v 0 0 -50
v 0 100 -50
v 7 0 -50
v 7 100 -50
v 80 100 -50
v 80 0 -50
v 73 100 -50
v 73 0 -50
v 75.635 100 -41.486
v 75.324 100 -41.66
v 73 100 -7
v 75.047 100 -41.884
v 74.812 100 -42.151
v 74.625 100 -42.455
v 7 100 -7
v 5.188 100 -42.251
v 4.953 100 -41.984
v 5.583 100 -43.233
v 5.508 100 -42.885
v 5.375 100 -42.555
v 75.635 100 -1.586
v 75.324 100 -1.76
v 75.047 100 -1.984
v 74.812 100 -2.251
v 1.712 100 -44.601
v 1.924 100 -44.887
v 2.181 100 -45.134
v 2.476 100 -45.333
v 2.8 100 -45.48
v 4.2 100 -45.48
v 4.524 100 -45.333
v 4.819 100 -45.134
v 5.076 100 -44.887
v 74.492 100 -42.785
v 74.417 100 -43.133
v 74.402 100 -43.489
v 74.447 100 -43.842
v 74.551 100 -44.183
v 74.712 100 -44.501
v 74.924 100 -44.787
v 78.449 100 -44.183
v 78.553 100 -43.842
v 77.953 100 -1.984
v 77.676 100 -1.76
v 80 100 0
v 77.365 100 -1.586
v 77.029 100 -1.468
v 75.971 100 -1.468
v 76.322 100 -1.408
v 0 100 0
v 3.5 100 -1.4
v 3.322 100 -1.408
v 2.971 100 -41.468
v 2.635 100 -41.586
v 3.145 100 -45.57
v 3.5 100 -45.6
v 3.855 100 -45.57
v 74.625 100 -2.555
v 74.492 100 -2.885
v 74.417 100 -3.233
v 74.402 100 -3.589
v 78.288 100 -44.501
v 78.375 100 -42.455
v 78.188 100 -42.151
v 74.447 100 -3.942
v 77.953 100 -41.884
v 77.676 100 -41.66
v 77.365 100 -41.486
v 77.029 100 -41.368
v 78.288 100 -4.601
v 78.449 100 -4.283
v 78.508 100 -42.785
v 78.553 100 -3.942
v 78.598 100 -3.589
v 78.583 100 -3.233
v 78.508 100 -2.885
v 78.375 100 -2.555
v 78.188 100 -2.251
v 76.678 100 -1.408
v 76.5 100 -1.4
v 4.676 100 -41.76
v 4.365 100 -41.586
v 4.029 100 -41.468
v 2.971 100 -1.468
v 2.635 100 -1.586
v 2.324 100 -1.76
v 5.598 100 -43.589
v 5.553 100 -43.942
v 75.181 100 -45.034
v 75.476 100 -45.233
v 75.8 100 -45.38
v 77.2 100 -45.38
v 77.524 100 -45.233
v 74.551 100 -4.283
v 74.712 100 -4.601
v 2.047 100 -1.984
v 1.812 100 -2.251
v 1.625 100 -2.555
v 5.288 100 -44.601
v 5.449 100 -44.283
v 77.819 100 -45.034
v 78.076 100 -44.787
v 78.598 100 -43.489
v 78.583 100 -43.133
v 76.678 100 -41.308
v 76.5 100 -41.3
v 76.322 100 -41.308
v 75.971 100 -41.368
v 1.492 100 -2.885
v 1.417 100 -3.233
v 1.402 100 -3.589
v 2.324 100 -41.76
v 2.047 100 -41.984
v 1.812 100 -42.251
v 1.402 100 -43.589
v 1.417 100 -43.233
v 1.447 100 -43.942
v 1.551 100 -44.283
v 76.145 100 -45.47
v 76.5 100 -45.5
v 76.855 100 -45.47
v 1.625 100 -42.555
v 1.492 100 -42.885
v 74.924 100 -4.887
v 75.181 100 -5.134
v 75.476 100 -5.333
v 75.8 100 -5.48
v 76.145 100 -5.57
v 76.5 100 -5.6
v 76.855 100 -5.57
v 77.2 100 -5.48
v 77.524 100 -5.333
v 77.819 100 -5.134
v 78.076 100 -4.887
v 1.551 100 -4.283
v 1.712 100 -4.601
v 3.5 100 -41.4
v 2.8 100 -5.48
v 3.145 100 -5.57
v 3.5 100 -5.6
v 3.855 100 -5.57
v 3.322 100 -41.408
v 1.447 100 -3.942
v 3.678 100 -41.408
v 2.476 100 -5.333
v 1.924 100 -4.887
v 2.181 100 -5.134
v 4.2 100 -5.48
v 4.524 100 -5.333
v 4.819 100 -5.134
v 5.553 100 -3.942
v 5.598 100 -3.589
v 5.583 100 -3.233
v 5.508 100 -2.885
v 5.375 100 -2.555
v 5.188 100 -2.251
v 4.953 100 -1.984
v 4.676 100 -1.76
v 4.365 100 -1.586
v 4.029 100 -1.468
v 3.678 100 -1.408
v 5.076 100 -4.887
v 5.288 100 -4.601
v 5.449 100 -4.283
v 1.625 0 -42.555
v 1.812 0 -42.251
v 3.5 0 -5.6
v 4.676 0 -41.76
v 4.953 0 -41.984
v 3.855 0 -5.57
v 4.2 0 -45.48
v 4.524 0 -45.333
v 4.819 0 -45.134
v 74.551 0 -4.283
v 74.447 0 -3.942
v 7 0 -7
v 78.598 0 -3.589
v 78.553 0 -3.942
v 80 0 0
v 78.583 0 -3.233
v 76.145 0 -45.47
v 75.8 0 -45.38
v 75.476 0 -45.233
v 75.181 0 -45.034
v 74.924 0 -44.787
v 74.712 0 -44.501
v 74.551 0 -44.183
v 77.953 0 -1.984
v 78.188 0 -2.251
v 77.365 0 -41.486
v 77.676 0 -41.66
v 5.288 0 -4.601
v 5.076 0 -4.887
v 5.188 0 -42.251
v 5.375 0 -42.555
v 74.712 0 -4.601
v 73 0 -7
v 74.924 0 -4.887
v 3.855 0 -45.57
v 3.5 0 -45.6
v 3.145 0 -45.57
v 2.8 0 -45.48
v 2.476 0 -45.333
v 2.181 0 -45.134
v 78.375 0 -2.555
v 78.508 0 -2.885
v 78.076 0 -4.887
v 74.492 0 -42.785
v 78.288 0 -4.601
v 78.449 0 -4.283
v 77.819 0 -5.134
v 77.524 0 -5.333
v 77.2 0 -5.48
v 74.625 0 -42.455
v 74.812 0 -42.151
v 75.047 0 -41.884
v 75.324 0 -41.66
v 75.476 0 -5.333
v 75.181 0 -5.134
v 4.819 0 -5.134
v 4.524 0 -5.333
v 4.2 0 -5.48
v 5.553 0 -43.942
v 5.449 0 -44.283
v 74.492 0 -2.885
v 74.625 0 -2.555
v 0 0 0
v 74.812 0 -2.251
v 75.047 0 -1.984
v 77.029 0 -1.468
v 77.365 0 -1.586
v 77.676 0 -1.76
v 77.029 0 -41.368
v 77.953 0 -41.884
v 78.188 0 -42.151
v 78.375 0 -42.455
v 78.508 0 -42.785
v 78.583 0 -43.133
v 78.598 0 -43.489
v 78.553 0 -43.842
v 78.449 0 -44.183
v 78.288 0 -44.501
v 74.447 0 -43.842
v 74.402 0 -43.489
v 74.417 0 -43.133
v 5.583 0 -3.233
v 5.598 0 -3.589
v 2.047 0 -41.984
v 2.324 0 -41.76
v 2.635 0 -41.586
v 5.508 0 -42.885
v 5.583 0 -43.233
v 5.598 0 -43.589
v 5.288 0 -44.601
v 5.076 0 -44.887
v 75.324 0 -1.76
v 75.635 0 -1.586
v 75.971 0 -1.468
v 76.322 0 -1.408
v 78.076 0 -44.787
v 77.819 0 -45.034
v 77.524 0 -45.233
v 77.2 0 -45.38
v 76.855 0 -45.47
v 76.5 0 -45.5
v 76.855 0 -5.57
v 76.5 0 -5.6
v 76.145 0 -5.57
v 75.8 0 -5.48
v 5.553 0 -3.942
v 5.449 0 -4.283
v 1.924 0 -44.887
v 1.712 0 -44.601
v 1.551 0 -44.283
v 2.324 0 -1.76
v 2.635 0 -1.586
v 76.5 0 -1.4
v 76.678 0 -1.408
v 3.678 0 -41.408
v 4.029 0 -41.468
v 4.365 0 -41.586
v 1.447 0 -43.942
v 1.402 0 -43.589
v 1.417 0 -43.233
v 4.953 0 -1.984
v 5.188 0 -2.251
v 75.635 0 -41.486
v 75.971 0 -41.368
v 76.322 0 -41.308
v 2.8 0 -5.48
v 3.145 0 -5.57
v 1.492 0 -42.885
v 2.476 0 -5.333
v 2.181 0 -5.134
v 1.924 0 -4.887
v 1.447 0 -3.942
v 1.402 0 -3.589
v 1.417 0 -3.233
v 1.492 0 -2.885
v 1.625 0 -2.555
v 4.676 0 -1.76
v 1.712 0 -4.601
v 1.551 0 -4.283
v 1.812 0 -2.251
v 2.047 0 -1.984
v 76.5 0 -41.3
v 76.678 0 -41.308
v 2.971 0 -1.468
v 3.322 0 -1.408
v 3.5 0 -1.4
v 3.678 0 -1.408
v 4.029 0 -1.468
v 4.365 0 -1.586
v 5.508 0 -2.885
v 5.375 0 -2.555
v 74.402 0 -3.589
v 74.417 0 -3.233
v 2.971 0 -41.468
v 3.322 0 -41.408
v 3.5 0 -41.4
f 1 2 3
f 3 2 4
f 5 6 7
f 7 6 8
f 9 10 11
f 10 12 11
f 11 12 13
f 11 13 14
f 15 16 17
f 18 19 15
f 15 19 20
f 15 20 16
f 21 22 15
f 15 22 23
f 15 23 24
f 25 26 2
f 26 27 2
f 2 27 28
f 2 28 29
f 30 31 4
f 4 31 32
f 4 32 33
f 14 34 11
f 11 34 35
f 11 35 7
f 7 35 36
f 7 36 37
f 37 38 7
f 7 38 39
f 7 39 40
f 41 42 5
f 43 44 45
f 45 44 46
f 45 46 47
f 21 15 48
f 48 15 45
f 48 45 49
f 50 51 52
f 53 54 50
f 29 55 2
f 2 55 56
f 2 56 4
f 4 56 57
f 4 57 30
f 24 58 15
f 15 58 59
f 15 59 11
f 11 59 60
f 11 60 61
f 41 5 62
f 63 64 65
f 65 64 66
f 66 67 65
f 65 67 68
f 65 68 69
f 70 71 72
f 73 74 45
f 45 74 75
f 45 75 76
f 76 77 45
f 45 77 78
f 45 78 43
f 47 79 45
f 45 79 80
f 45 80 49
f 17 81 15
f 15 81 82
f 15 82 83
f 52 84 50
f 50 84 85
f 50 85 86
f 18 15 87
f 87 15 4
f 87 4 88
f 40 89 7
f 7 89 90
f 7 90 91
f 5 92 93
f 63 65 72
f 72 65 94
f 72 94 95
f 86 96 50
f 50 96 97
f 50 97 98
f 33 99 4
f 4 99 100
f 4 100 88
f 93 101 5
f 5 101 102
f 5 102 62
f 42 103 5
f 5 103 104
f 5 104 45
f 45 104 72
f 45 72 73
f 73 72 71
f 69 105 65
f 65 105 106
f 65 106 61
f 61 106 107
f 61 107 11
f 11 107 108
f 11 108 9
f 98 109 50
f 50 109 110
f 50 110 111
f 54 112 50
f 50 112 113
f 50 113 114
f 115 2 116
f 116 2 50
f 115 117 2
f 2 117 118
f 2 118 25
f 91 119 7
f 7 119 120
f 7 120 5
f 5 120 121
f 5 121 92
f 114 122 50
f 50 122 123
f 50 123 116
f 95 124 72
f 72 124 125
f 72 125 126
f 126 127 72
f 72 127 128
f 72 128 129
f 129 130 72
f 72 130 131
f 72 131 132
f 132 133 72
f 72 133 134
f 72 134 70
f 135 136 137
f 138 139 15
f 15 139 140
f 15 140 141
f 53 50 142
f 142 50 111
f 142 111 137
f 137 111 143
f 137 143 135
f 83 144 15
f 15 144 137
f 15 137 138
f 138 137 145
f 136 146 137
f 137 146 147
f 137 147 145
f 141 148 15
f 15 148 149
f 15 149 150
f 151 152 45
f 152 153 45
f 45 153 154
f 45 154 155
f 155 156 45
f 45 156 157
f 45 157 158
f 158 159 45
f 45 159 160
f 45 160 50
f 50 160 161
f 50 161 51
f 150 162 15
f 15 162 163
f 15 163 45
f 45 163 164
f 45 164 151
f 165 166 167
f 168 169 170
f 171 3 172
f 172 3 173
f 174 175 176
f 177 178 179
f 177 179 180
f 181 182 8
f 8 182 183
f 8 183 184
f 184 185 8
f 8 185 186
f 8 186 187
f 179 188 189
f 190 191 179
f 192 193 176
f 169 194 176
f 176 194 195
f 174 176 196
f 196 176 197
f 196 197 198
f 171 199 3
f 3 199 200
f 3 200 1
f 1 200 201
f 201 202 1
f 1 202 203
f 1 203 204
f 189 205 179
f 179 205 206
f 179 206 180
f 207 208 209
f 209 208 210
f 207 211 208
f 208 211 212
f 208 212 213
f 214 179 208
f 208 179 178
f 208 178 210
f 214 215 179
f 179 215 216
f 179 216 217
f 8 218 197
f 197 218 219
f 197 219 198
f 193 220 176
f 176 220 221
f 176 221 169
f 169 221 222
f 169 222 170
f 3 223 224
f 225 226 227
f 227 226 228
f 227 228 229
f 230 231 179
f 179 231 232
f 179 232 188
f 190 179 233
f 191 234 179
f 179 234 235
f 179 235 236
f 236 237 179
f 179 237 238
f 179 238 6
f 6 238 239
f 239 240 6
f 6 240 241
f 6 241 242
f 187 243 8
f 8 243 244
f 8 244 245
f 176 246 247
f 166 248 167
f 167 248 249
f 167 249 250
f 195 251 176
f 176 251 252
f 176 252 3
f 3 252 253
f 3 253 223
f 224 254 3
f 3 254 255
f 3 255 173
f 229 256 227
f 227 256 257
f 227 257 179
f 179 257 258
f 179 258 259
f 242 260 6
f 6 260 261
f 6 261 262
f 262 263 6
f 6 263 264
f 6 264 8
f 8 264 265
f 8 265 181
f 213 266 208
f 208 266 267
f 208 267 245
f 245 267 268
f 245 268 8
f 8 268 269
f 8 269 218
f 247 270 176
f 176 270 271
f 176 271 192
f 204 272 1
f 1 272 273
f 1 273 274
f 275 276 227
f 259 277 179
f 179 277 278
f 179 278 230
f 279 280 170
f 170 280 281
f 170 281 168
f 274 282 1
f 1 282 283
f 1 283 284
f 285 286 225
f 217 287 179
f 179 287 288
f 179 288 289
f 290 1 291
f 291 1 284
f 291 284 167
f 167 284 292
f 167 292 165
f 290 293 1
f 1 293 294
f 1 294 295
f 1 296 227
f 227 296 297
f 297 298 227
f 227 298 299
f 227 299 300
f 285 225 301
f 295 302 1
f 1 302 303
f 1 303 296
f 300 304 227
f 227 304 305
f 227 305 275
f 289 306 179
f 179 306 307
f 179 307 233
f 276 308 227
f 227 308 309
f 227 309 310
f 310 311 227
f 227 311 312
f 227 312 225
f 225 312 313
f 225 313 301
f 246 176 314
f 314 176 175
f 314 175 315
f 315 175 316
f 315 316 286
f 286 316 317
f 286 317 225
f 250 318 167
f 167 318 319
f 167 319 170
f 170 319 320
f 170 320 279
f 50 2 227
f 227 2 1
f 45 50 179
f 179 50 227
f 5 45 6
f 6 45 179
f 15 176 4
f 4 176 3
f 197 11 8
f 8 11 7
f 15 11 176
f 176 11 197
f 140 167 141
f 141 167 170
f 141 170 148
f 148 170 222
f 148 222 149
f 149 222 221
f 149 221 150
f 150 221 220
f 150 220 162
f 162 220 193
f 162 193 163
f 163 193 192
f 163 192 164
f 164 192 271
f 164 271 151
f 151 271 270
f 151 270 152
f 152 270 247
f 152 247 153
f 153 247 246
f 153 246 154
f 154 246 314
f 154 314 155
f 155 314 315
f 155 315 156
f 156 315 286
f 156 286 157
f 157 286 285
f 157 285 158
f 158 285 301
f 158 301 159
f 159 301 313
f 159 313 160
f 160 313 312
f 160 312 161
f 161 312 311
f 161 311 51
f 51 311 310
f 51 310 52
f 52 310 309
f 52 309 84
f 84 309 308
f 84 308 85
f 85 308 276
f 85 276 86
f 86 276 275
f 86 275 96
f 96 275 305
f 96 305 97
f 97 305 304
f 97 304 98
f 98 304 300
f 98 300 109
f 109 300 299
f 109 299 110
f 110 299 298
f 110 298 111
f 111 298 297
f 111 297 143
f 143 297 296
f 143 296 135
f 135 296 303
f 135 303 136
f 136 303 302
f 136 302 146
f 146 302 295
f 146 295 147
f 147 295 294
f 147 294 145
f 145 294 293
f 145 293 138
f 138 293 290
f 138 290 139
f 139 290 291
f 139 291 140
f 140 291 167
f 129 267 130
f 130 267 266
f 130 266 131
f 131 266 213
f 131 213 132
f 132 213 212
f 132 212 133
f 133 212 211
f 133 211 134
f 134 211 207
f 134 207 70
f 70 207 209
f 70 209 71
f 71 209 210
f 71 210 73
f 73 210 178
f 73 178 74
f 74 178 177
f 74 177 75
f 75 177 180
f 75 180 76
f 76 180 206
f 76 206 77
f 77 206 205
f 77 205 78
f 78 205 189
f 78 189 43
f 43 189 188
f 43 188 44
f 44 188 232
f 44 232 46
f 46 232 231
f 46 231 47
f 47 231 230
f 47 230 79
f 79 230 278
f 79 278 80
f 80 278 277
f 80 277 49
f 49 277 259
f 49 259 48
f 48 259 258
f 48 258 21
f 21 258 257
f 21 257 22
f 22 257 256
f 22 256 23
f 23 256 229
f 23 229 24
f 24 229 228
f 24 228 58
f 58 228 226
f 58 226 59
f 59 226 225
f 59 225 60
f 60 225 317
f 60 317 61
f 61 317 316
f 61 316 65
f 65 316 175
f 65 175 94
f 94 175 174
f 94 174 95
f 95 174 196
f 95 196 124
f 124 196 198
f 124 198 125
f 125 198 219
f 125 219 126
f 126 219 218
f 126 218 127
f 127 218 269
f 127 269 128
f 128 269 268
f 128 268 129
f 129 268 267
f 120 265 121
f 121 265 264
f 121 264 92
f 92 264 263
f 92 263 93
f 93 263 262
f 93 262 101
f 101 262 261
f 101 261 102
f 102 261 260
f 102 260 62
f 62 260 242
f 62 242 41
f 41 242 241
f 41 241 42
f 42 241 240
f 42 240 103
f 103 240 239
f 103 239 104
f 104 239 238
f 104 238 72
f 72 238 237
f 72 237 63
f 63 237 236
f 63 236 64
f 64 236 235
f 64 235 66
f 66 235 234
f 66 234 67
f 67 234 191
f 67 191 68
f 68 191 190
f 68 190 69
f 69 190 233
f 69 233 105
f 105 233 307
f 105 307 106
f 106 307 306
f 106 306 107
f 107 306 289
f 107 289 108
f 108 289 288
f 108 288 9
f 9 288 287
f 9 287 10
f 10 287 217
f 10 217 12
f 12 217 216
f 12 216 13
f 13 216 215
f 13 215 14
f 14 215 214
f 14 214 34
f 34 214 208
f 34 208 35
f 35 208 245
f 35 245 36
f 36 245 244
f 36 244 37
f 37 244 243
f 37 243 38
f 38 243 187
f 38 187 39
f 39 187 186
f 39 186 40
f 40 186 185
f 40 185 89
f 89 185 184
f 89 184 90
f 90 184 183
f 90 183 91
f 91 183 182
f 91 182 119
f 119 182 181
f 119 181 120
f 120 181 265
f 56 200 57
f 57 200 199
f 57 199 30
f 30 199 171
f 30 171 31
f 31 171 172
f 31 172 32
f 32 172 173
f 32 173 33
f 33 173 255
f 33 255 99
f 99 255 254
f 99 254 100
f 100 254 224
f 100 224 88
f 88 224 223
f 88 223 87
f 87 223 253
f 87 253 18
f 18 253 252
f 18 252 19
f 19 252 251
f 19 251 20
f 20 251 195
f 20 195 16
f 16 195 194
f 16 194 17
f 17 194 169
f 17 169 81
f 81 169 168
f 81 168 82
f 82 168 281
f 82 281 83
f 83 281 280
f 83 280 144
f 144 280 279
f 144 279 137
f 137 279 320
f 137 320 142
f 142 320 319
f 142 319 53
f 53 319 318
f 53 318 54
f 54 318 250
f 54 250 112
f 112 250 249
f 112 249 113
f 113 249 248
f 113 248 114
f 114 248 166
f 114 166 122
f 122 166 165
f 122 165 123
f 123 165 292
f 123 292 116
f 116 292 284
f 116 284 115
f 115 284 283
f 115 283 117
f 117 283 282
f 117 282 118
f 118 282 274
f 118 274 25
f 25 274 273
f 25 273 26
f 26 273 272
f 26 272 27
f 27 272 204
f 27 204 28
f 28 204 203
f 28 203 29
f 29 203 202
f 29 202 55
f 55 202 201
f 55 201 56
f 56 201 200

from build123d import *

# Parameters (mm, degrees)
SKETCH_1_W          = 80
SKETCH_1_H          = 50
EXTRUDE_1_DEPTH     = 100
SKETCH_3_W          = 66
SKETCH_3_H          = 44.469830213
CUT_EXTRUDE_1_DEPTH = 138.477270849
SKETCH_4_R          = 2.1
CUT_EXTRUDE_2_DEPTH = 138.477270849


with BuildPart() as part:
    # 草圖1 → 填料-伸長1 (new body)
    with BuildSketch(Plane(origin=(0, 0, 0), x_dir=(1, 0, 0), z_dir=(0, 1, 0))):
        with Locations((40, 25)):
            Rectangle(SKETCH_1_W, SKETCH_1_H)
    extrude(amount=EXTRUDE_1_DEPTH)

    # 草圖3 → 除料-伸長1 (cut, through all)
    with BuildSketch(Plane(origin=(0, 0, 0), x_dir=(1, 0, 0), z_dir=(0, 1, 0))):
        with Locations((40, 29.234915107)):
            Rectangle(SKETCH_3_W, SKETCH_3_H)
    extrude(amount=CUT_EXTRUDE_1_DEPTH, mode=Mode.SUBTRACT)

    # 草圖4 → 除料-伸長2 (cut, through all)
    with BuildSketch(Plane(origin=(0, 0, 0), x_dir=(1, 0, 0), z_dir=(0, 1, 0))):
        with Locations(Location((3.5, 3.5, 0), (0, 0, 270))):
            Circle(SKETCH_4_R)
        with Locations(Location((3.5, 43.5, 0), (0, 0, 270))):
            Circle(SKETCH_4_R)
        with Locations(Location((76.5, 43.4, 0), (0, 0, 270))):
            Circle(SKETCH_4_R)
        with Locations(Location((76.5, 3.5, 0), (0, 0, 270))):
            Circle(SKETCH_4_R)
    extrude(amount=CUT_EXTRUDE_2_DEPTH, mode=Mode.SUBTRACT)


solid = part.part
